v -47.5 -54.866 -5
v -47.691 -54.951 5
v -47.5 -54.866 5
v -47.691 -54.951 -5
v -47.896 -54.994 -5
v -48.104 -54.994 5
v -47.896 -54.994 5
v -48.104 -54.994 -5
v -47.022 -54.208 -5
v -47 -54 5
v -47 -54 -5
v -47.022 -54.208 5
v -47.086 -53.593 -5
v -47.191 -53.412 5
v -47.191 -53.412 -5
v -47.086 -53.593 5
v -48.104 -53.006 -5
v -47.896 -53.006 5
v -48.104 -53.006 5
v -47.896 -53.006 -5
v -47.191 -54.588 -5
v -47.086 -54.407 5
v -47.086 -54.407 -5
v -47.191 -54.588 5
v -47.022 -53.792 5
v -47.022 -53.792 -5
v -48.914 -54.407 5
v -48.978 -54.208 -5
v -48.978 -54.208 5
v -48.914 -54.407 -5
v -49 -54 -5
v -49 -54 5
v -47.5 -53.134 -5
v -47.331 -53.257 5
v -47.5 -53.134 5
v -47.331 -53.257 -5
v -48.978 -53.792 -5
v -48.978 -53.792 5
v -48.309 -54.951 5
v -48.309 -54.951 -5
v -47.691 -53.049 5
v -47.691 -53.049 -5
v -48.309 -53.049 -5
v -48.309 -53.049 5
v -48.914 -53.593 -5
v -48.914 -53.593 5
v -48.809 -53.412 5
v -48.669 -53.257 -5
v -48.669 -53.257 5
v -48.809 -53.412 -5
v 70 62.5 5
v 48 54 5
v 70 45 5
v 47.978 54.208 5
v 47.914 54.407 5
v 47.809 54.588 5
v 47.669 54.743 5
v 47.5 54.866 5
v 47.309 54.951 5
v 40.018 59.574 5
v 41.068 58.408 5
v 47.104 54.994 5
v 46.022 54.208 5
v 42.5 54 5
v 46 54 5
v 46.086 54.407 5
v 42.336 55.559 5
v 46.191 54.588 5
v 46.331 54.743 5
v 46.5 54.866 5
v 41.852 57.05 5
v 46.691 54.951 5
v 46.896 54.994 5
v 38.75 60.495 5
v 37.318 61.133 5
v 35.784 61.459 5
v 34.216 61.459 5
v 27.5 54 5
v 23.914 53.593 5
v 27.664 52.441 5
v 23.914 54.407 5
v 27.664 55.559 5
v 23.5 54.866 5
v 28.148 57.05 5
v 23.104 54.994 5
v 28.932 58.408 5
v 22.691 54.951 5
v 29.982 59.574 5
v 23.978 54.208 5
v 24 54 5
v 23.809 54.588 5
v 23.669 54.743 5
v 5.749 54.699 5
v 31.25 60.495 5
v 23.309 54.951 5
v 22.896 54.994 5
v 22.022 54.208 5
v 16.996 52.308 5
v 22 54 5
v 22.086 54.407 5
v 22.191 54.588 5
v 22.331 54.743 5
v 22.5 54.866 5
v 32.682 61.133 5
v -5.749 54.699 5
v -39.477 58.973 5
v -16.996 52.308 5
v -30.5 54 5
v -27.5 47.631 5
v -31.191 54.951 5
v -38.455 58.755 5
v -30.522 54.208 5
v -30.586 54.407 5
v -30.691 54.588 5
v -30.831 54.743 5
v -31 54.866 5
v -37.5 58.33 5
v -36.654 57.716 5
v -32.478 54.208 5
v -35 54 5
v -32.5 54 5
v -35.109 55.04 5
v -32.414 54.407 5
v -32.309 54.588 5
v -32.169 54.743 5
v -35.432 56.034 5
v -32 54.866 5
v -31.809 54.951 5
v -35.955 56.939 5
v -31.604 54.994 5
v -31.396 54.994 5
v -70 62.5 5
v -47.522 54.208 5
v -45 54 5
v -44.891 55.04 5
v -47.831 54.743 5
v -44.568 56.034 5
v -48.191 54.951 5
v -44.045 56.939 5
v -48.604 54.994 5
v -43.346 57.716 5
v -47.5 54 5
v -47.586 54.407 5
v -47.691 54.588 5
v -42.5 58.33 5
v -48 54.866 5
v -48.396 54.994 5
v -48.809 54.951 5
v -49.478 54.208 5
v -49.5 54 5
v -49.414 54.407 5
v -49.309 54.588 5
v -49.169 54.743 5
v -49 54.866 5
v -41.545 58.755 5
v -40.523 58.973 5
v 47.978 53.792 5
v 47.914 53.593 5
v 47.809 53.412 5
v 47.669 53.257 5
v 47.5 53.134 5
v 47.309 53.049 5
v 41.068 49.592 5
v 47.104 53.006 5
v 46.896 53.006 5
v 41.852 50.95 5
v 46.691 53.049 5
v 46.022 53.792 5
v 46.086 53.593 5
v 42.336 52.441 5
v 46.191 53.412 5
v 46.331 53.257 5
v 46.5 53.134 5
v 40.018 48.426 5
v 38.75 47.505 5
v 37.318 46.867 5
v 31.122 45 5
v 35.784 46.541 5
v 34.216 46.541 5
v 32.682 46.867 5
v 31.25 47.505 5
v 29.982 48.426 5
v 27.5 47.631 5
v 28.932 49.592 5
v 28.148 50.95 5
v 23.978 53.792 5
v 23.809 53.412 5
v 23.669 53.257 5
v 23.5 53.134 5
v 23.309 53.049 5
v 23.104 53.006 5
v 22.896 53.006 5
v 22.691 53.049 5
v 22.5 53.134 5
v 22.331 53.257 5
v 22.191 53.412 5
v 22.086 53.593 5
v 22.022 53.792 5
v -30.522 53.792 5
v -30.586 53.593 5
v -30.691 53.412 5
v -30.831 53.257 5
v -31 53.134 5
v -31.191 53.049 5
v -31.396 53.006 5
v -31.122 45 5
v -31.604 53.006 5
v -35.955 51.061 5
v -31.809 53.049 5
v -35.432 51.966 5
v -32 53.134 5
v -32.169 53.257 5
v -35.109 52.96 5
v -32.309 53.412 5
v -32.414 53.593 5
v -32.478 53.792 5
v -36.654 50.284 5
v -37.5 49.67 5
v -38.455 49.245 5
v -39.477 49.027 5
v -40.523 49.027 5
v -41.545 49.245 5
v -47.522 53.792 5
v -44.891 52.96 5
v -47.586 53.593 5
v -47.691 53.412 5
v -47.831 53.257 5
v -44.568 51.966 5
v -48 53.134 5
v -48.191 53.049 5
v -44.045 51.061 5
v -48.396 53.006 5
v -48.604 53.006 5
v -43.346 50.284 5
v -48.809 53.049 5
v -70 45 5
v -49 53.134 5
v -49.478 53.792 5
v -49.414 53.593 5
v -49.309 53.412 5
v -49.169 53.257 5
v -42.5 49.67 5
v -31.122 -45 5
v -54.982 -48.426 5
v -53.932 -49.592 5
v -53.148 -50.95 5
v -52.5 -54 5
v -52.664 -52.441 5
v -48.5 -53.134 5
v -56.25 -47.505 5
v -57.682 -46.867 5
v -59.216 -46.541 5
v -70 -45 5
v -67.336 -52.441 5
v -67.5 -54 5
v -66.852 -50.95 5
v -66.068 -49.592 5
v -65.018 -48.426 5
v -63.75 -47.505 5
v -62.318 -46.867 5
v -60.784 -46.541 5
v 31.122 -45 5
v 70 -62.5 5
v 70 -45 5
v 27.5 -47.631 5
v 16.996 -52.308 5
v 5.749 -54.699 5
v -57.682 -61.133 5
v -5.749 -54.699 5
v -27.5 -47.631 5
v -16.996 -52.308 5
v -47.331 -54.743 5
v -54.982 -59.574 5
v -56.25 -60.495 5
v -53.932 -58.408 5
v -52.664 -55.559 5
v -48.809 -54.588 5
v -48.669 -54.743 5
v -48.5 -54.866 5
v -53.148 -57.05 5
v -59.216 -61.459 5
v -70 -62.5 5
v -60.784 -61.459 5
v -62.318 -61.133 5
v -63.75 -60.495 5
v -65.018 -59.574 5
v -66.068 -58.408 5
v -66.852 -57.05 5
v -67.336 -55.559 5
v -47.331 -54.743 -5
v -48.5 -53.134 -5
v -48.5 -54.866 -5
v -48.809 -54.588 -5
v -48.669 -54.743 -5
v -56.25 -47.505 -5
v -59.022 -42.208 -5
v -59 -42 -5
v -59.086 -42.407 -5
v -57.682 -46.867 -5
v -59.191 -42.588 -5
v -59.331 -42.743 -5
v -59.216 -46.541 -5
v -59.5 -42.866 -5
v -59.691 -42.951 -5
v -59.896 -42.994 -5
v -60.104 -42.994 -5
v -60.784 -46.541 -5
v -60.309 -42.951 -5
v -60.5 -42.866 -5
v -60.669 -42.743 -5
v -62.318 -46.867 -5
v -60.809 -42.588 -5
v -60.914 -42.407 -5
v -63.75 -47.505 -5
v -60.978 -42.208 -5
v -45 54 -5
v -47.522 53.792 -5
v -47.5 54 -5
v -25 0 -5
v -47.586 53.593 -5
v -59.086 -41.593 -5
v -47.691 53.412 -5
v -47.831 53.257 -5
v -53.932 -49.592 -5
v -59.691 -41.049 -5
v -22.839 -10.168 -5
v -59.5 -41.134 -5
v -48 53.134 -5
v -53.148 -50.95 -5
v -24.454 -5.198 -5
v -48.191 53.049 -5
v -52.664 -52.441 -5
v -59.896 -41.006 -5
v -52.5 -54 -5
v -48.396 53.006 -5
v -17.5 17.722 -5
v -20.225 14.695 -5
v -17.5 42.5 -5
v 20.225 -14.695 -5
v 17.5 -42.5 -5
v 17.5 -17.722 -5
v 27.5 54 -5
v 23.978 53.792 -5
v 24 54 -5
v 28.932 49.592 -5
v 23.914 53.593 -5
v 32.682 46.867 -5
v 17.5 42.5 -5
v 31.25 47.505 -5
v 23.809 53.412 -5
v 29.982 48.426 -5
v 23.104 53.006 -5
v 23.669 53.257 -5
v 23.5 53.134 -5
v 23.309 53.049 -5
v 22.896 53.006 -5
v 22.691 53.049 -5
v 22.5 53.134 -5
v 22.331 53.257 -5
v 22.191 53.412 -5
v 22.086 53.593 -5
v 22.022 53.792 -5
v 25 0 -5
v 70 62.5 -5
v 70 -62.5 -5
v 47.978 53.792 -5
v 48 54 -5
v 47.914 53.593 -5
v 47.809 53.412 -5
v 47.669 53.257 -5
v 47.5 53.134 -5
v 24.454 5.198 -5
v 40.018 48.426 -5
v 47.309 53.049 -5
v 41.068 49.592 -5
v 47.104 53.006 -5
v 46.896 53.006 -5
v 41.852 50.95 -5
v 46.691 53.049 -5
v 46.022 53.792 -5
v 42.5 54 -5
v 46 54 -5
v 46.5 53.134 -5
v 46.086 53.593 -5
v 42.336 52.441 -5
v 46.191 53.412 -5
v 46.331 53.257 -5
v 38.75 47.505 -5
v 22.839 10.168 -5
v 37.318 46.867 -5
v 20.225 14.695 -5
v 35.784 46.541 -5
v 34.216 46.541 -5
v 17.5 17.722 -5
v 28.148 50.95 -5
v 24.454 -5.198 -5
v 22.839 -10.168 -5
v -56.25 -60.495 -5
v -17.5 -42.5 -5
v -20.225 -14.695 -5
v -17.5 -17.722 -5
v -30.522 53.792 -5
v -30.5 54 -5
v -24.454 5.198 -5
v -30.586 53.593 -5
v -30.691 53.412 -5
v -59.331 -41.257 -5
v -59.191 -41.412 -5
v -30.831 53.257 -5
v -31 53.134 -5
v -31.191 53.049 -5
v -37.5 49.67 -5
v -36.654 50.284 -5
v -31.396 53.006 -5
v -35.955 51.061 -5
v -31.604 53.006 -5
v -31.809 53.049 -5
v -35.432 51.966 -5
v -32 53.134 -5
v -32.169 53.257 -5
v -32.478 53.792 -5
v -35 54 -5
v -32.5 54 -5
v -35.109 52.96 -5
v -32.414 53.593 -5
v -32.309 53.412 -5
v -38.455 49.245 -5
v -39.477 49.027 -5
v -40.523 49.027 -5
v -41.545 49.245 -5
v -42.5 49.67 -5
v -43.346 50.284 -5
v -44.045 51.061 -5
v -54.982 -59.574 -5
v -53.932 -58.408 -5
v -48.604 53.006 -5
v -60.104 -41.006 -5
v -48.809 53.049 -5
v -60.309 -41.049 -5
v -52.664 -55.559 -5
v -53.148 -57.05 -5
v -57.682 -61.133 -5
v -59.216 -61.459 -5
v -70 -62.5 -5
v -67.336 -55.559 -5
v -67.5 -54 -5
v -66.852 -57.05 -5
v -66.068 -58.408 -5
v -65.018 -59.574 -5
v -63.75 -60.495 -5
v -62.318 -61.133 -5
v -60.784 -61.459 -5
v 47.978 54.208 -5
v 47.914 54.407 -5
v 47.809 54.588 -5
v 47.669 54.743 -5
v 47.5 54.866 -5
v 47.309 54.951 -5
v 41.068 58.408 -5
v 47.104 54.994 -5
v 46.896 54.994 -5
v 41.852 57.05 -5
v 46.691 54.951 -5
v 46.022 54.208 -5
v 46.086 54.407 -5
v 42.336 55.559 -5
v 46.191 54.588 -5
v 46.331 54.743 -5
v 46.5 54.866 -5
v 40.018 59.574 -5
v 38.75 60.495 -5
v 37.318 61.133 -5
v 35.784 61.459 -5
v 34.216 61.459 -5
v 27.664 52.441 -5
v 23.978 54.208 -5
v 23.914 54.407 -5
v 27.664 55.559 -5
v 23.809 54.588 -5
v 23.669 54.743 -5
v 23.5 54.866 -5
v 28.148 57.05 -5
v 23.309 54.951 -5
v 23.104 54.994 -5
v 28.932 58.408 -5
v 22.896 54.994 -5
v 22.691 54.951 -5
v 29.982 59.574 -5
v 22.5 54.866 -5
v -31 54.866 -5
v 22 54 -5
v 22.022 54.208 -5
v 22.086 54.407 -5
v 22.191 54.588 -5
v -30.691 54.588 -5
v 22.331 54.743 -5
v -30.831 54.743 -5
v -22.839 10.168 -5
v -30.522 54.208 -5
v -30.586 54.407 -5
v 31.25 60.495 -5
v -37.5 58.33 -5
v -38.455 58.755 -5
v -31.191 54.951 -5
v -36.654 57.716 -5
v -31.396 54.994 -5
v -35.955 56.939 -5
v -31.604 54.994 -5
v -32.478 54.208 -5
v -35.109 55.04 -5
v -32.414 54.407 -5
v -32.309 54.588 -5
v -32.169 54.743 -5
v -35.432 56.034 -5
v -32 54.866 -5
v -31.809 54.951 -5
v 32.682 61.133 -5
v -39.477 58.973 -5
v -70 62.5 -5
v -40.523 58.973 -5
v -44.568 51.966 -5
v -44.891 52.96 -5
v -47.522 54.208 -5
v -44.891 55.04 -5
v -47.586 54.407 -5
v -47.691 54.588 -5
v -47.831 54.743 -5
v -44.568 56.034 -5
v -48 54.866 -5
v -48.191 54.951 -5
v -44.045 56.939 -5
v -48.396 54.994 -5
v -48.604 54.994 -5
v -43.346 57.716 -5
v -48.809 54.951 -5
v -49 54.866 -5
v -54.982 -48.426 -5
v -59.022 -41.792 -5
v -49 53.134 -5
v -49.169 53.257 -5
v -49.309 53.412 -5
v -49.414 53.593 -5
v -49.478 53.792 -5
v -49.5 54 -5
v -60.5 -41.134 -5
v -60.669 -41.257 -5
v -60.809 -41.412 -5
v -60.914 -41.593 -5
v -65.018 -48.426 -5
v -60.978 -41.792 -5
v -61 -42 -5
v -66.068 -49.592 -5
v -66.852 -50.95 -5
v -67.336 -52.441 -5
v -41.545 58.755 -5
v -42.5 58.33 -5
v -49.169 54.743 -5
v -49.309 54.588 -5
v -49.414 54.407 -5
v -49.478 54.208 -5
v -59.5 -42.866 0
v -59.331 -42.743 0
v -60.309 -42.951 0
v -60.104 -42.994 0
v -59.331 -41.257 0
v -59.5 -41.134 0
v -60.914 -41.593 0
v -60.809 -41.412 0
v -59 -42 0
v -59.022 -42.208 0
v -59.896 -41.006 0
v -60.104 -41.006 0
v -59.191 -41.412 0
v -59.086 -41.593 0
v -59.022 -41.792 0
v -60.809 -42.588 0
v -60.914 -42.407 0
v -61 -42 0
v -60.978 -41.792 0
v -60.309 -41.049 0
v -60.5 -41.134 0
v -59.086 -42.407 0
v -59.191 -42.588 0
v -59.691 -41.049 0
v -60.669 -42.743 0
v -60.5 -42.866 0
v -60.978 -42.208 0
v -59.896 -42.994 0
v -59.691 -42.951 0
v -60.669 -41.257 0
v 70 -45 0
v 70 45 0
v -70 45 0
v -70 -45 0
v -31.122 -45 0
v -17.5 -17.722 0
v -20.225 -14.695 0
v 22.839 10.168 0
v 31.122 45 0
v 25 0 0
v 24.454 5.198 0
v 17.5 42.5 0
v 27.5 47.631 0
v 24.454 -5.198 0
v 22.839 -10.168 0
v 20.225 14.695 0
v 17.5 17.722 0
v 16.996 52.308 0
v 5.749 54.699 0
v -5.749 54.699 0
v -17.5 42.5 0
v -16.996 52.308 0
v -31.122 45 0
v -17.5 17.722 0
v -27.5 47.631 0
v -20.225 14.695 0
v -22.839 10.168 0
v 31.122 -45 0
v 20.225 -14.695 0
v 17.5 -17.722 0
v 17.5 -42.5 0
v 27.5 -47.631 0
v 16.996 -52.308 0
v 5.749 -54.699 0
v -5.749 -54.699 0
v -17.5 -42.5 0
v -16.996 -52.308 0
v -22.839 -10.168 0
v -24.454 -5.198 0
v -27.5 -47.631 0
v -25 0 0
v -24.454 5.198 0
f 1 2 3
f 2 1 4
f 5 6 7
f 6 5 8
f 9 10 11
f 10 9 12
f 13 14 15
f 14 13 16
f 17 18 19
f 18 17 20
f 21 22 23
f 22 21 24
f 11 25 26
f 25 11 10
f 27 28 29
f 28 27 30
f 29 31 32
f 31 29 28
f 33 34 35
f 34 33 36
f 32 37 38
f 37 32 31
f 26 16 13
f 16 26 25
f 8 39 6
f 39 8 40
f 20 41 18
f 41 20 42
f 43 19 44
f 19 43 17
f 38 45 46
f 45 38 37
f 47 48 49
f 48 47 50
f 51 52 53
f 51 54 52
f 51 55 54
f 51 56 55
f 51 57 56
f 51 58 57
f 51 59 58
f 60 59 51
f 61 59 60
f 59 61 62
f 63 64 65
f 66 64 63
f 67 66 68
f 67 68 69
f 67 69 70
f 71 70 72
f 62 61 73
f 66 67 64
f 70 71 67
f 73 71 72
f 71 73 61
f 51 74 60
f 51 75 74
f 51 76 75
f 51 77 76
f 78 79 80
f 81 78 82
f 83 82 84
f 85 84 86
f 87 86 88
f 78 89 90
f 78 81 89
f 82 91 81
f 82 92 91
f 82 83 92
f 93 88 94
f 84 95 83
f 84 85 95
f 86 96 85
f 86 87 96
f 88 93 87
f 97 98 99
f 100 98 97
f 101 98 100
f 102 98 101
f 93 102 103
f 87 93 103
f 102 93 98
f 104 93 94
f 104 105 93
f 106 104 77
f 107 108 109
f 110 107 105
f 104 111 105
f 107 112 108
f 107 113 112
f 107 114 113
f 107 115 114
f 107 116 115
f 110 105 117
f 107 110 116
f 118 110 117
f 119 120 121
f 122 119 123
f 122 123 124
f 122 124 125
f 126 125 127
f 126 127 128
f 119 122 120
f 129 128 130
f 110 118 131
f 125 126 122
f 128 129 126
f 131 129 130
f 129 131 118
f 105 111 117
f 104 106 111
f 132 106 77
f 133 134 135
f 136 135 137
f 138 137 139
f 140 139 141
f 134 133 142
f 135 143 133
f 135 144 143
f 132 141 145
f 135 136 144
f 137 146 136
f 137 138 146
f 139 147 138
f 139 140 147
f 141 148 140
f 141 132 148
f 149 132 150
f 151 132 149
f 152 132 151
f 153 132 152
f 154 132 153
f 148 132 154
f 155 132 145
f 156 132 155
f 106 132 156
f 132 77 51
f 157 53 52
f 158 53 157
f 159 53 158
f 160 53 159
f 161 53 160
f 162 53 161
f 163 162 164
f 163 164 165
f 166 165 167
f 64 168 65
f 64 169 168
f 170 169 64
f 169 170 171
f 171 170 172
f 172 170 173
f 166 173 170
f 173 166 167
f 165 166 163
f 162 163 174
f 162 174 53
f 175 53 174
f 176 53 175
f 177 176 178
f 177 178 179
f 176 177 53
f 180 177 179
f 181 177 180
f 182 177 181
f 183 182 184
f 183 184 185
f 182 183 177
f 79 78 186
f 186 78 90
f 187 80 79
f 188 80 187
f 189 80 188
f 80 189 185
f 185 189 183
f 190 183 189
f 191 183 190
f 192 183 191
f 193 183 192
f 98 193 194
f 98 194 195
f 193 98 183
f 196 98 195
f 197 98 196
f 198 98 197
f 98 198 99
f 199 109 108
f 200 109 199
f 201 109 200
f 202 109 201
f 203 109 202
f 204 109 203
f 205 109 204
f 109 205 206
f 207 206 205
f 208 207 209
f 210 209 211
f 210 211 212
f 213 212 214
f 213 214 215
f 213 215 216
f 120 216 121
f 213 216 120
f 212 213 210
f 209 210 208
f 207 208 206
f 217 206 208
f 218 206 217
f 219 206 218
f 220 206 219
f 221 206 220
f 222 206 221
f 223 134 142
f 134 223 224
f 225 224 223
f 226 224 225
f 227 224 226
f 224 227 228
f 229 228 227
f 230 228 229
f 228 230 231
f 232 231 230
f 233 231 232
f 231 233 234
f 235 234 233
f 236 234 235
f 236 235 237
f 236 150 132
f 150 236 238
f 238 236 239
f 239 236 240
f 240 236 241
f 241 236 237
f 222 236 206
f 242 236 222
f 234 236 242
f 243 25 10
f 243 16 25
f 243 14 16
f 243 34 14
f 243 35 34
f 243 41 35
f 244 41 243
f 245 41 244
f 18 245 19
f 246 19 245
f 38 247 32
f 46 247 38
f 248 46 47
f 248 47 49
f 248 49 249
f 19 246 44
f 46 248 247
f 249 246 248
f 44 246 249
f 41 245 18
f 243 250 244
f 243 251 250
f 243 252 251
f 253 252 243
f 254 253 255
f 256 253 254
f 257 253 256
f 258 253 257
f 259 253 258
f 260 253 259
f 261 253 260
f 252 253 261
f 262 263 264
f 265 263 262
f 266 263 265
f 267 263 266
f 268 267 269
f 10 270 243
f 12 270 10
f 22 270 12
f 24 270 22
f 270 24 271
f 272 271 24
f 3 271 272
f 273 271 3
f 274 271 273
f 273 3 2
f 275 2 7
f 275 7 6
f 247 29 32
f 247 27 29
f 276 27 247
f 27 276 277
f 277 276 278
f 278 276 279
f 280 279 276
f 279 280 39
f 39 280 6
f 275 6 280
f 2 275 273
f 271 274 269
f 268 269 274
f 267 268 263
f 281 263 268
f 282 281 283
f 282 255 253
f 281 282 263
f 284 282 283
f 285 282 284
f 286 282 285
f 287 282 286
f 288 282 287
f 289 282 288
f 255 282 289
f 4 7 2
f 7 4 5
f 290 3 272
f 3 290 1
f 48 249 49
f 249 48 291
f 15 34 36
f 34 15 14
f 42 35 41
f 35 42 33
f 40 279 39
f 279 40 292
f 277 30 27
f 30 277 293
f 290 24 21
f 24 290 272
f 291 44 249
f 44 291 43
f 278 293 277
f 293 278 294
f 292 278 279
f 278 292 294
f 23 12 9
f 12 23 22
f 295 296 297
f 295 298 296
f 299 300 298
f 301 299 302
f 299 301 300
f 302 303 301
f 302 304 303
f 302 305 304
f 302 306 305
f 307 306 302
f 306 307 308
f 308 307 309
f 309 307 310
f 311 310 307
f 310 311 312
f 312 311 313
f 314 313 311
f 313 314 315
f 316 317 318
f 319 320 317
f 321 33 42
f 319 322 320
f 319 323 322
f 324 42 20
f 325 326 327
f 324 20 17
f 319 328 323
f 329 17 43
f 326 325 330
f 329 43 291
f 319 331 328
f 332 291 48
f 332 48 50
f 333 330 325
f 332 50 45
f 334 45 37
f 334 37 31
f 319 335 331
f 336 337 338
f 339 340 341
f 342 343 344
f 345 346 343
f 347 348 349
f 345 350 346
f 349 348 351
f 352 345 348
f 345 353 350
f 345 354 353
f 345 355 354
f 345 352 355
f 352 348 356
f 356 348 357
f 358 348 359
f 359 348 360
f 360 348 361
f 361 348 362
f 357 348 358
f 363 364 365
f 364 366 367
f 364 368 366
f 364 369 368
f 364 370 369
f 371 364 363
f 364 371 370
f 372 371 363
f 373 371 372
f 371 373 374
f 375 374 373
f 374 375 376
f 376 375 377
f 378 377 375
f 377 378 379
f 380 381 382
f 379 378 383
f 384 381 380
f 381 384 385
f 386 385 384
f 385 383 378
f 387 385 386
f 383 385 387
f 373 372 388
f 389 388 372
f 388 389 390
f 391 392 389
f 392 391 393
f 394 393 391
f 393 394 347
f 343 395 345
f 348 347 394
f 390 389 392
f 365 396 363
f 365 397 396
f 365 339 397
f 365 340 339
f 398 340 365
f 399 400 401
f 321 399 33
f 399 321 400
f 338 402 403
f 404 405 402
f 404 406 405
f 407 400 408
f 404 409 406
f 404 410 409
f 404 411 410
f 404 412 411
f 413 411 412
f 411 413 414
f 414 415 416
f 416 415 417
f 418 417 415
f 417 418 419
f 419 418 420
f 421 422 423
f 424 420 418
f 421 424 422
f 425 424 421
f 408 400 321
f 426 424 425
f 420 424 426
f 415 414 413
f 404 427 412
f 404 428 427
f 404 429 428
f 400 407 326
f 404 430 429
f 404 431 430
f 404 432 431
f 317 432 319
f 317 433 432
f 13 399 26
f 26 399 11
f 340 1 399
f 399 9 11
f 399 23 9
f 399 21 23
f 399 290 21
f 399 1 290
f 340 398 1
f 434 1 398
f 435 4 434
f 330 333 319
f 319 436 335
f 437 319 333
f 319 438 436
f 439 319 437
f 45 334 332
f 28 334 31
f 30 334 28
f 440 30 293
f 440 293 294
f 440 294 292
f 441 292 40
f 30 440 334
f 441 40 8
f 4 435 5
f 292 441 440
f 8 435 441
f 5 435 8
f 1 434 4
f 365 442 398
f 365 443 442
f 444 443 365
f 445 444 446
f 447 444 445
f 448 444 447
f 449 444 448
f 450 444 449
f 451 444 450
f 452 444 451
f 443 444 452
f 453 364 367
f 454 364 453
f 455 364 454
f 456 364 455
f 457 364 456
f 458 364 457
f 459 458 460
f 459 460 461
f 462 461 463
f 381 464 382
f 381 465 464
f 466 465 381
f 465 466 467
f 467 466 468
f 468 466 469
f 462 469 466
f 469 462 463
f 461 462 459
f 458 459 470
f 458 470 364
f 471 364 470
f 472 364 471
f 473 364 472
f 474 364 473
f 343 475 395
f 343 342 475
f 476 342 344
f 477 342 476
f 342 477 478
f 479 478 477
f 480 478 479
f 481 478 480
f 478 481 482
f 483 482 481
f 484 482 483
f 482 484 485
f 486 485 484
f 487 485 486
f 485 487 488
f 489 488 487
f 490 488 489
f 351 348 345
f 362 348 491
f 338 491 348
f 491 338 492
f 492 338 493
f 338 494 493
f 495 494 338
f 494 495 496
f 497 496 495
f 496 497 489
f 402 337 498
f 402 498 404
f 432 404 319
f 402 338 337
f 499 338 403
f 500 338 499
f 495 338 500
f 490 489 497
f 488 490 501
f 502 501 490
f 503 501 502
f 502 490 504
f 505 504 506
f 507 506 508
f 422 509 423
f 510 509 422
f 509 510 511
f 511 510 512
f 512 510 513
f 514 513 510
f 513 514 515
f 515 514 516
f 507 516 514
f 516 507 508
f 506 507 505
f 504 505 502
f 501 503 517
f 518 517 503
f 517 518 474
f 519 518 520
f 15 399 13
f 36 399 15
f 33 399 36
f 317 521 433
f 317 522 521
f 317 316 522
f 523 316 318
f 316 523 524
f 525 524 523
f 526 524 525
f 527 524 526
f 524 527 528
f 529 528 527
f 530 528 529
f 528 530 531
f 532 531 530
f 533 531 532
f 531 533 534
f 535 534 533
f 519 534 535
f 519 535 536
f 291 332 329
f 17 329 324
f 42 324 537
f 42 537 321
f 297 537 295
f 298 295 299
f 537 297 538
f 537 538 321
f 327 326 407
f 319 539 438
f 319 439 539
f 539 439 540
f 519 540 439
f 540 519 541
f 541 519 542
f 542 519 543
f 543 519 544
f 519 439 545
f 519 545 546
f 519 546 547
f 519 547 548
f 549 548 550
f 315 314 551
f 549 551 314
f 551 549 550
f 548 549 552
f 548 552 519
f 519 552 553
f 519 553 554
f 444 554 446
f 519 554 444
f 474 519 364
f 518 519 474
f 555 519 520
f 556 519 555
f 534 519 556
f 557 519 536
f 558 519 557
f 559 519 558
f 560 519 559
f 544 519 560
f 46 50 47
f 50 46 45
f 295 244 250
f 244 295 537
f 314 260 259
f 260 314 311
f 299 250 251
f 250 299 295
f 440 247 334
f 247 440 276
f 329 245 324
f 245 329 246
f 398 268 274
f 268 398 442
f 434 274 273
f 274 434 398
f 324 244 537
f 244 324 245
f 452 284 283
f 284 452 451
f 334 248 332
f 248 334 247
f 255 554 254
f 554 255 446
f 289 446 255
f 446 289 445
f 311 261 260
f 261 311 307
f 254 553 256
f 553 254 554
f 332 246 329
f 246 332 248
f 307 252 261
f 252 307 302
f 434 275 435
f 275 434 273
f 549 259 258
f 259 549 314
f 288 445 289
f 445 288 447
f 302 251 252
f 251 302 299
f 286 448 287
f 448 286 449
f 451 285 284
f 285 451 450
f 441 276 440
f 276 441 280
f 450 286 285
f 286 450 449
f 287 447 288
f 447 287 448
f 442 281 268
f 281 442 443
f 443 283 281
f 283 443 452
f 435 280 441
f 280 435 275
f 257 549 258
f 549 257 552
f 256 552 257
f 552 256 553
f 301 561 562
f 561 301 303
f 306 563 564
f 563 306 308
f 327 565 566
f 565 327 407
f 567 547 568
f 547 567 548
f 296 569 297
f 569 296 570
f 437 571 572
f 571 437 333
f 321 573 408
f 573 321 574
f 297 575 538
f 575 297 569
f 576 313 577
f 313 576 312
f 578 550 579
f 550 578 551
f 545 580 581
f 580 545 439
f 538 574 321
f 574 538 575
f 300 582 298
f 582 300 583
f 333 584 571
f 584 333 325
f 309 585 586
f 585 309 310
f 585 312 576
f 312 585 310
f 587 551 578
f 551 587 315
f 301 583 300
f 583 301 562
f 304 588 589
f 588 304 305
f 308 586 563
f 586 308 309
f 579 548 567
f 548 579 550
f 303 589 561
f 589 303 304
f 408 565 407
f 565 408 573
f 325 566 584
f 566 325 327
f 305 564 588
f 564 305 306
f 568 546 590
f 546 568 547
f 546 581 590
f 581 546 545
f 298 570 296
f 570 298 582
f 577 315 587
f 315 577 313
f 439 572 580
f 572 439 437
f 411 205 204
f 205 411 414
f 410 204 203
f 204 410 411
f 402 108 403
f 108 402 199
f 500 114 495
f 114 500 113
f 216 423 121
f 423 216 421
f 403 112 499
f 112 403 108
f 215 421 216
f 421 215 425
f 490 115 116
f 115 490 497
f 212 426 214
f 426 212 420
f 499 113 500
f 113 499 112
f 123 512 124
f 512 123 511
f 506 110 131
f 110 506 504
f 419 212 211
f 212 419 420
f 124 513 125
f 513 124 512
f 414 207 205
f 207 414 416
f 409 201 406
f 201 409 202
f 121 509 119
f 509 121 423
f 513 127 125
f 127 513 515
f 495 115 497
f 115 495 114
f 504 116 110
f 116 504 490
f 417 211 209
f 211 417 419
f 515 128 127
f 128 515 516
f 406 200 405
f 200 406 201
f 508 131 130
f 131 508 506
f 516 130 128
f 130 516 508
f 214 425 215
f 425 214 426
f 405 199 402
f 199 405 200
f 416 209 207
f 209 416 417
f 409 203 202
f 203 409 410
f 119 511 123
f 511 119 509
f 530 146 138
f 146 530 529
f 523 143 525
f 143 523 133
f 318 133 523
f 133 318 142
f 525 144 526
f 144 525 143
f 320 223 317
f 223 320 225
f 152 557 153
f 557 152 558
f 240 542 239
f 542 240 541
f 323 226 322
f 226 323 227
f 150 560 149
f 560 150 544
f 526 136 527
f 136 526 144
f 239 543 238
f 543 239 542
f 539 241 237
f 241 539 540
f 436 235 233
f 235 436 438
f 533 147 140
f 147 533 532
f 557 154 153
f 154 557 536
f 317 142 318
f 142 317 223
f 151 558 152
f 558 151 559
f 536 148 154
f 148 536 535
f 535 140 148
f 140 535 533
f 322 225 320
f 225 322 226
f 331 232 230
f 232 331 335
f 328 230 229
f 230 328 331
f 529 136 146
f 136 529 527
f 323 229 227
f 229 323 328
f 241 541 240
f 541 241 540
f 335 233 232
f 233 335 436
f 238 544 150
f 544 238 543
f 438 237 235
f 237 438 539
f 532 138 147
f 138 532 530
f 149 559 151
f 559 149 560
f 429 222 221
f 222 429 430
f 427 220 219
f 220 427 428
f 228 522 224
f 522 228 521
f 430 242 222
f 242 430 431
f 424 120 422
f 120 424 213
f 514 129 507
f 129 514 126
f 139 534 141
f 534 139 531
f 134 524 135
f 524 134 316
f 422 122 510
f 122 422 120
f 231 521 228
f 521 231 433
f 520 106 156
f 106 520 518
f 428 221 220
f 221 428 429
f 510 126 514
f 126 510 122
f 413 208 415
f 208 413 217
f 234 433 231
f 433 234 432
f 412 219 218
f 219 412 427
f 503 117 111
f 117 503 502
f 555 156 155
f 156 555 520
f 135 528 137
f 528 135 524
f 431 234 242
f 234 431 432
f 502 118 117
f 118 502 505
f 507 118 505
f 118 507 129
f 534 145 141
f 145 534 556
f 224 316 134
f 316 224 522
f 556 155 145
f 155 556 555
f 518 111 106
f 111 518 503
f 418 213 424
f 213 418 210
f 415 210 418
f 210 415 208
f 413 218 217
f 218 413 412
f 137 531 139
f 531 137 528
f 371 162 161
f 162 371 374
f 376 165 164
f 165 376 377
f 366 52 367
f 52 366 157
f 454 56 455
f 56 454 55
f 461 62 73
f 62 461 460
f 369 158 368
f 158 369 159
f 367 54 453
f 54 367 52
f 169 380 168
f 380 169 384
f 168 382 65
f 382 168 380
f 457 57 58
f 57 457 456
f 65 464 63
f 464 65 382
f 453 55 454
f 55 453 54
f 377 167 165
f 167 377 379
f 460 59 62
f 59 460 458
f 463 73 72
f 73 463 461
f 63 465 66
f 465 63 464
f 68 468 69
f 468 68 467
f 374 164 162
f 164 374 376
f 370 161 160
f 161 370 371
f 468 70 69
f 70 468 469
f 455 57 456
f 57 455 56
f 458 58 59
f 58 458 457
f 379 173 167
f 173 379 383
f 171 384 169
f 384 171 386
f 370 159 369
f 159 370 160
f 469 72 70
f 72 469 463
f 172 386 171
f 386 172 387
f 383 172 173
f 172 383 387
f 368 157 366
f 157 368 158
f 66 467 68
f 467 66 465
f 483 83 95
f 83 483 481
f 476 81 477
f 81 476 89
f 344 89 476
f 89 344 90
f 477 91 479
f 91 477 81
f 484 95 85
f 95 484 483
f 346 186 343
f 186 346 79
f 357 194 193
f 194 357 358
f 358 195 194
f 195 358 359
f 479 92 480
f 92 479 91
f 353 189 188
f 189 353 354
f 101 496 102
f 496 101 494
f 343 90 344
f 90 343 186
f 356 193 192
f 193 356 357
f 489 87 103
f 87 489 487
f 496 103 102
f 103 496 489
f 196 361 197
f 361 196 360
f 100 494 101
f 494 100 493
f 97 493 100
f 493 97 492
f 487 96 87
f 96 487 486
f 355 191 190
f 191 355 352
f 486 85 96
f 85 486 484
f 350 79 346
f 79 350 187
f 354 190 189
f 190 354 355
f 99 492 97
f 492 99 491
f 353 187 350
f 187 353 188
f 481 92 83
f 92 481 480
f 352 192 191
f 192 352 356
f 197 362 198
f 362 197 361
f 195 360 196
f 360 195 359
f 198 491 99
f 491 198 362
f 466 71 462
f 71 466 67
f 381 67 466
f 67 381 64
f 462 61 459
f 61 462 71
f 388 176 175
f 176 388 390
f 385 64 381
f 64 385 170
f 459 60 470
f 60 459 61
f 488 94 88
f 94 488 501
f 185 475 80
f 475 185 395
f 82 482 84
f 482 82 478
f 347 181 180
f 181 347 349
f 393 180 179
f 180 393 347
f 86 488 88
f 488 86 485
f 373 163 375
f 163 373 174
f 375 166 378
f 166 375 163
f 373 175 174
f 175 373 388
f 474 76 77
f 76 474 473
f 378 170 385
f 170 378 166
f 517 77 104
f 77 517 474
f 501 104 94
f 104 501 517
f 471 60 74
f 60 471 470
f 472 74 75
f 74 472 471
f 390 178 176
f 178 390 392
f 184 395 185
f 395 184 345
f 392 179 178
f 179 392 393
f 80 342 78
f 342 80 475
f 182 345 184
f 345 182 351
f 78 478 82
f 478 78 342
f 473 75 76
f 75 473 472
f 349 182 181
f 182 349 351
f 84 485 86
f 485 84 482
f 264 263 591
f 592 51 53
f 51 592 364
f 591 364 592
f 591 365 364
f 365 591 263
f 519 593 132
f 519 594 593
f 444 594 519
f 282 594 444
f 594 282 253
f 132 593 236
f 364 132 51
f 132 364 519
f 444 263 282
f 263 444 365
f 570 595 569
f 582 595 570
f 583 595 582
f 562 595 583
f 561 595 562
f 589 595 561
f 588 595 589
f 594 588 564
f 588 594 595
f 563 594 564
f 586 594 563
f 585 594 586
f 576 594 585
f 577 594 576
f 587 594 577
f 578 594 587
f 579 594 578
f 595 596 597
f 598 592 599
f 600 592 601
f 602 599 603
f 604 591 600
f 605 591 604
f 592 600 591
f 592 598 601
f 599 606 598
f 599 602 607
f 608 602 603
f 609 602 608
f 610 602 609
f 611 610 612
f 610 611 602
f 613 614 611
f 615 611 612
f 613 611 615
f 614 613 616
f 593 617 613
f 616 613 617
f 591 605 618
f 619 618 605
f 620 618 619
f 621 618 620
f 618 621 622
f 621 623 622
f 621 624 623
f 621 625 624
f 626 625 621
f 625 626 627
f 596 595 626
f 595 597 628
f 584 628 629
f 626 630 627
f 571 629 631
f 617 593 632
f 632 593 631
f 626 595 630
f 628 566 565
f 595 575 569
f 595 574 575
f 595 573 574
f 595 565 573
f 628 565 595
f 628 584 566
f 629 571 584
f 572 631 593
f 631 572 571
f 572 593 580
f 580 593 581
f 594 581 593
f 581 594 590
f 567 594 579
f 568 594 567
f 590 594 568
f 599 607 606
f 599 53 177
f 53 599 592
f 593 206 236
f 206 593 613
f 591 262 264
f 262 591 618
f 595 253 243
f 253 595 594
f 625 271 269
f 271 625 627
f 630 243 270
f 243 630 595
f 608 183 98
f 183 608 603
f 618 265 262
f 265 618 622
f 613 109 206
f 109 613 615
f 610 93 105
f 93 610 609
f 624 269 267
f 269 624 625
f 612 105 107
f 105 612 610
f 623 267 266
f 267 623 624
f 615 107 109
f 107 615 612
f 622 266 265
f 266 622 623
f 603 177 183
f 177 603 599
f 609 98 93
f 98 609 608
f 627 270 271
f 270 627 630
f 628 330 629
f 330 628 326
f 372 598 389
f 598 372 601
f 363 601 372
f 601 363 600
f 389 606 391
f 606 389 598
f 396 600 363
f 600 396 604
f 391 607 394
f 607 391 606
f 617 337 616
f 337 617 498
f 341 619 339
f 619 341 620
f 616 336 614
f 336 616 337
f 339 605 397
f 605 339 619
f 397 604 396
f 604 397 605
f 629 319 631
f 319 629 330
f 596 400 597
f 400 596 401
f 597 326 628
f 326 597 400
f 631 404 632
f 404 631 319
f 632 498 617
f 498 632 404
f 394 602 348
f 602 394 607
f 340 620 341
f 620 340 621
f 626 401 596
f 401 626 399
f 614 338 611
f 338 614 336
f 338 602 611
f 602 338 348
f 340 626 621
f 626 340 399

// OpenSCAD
// Multi_Tissue_Recording Stage v2_100mm
// Jack F. Murphy <me@jackmurphy.nyc>
// https://github.com/teammurphy/Multi_Tissue_CAD

// Smoothness
$fn = 30;

// Stage Dimensions
stage_len=140;
stage_width=125;
stage_thickness=10;

// Hole Dimensions
hole_diam=50;
hole_len=85;
hole_width=35;
lin_bearing=15;
threaded=10;
pilot_rad=2;

difference(){
  translate([0, 0, 0])  
    cube([stage_len, stage_width, stage_thickness], center=true);
    
  // Create lower level
  translate([0, 0, 5]) 
    cube([stage_len, 90, stage_thickness], center=true);
  
  translate([0, 0, 5])
    cylinder(d=110, h=stage_thickness, center=true);
    
  // Circular Gap
  translate([0, 0, 0])
    cylinder(d=hole_diam, h=stage_thickness, center=true);

  // Rectangular Gap
  translate([0, 0, 0])  
    cube([hole_width, hole_len, stage_thickness], center=true);

  // Threaded Hole
  translate([-40, 54, 0]){
    cylinder(d=threaded, h=stage_thickness, center=true);
    pilot_holes(8.5);
  }

  // Linear Bearing Holes
  translate([-60, -54, 0]) {
    cylinder(d=lin_bearing, h=stage_thickness, center=true);
    pilot_holes(12);
    translate([0, 12, 0])
        cylinder(d=pilot_rad, h=stage_thickness, center=true);
  }
  translate([35, 54, 0]) {
    cylinder(d=lin_bearing, h=stage_thickness, center=true);
    pilot_holes(12);
  }

}

// Create 2
module pilot_holes(radius){
  translate([radius, 0, 0])
    cylinder(d=pilot_rad, h=stage_thickness, center=true);
  translate([-1*radius, 0, 0])
    cylinder(d=pilot_rad, h=stage_thickness, center=true);
}
